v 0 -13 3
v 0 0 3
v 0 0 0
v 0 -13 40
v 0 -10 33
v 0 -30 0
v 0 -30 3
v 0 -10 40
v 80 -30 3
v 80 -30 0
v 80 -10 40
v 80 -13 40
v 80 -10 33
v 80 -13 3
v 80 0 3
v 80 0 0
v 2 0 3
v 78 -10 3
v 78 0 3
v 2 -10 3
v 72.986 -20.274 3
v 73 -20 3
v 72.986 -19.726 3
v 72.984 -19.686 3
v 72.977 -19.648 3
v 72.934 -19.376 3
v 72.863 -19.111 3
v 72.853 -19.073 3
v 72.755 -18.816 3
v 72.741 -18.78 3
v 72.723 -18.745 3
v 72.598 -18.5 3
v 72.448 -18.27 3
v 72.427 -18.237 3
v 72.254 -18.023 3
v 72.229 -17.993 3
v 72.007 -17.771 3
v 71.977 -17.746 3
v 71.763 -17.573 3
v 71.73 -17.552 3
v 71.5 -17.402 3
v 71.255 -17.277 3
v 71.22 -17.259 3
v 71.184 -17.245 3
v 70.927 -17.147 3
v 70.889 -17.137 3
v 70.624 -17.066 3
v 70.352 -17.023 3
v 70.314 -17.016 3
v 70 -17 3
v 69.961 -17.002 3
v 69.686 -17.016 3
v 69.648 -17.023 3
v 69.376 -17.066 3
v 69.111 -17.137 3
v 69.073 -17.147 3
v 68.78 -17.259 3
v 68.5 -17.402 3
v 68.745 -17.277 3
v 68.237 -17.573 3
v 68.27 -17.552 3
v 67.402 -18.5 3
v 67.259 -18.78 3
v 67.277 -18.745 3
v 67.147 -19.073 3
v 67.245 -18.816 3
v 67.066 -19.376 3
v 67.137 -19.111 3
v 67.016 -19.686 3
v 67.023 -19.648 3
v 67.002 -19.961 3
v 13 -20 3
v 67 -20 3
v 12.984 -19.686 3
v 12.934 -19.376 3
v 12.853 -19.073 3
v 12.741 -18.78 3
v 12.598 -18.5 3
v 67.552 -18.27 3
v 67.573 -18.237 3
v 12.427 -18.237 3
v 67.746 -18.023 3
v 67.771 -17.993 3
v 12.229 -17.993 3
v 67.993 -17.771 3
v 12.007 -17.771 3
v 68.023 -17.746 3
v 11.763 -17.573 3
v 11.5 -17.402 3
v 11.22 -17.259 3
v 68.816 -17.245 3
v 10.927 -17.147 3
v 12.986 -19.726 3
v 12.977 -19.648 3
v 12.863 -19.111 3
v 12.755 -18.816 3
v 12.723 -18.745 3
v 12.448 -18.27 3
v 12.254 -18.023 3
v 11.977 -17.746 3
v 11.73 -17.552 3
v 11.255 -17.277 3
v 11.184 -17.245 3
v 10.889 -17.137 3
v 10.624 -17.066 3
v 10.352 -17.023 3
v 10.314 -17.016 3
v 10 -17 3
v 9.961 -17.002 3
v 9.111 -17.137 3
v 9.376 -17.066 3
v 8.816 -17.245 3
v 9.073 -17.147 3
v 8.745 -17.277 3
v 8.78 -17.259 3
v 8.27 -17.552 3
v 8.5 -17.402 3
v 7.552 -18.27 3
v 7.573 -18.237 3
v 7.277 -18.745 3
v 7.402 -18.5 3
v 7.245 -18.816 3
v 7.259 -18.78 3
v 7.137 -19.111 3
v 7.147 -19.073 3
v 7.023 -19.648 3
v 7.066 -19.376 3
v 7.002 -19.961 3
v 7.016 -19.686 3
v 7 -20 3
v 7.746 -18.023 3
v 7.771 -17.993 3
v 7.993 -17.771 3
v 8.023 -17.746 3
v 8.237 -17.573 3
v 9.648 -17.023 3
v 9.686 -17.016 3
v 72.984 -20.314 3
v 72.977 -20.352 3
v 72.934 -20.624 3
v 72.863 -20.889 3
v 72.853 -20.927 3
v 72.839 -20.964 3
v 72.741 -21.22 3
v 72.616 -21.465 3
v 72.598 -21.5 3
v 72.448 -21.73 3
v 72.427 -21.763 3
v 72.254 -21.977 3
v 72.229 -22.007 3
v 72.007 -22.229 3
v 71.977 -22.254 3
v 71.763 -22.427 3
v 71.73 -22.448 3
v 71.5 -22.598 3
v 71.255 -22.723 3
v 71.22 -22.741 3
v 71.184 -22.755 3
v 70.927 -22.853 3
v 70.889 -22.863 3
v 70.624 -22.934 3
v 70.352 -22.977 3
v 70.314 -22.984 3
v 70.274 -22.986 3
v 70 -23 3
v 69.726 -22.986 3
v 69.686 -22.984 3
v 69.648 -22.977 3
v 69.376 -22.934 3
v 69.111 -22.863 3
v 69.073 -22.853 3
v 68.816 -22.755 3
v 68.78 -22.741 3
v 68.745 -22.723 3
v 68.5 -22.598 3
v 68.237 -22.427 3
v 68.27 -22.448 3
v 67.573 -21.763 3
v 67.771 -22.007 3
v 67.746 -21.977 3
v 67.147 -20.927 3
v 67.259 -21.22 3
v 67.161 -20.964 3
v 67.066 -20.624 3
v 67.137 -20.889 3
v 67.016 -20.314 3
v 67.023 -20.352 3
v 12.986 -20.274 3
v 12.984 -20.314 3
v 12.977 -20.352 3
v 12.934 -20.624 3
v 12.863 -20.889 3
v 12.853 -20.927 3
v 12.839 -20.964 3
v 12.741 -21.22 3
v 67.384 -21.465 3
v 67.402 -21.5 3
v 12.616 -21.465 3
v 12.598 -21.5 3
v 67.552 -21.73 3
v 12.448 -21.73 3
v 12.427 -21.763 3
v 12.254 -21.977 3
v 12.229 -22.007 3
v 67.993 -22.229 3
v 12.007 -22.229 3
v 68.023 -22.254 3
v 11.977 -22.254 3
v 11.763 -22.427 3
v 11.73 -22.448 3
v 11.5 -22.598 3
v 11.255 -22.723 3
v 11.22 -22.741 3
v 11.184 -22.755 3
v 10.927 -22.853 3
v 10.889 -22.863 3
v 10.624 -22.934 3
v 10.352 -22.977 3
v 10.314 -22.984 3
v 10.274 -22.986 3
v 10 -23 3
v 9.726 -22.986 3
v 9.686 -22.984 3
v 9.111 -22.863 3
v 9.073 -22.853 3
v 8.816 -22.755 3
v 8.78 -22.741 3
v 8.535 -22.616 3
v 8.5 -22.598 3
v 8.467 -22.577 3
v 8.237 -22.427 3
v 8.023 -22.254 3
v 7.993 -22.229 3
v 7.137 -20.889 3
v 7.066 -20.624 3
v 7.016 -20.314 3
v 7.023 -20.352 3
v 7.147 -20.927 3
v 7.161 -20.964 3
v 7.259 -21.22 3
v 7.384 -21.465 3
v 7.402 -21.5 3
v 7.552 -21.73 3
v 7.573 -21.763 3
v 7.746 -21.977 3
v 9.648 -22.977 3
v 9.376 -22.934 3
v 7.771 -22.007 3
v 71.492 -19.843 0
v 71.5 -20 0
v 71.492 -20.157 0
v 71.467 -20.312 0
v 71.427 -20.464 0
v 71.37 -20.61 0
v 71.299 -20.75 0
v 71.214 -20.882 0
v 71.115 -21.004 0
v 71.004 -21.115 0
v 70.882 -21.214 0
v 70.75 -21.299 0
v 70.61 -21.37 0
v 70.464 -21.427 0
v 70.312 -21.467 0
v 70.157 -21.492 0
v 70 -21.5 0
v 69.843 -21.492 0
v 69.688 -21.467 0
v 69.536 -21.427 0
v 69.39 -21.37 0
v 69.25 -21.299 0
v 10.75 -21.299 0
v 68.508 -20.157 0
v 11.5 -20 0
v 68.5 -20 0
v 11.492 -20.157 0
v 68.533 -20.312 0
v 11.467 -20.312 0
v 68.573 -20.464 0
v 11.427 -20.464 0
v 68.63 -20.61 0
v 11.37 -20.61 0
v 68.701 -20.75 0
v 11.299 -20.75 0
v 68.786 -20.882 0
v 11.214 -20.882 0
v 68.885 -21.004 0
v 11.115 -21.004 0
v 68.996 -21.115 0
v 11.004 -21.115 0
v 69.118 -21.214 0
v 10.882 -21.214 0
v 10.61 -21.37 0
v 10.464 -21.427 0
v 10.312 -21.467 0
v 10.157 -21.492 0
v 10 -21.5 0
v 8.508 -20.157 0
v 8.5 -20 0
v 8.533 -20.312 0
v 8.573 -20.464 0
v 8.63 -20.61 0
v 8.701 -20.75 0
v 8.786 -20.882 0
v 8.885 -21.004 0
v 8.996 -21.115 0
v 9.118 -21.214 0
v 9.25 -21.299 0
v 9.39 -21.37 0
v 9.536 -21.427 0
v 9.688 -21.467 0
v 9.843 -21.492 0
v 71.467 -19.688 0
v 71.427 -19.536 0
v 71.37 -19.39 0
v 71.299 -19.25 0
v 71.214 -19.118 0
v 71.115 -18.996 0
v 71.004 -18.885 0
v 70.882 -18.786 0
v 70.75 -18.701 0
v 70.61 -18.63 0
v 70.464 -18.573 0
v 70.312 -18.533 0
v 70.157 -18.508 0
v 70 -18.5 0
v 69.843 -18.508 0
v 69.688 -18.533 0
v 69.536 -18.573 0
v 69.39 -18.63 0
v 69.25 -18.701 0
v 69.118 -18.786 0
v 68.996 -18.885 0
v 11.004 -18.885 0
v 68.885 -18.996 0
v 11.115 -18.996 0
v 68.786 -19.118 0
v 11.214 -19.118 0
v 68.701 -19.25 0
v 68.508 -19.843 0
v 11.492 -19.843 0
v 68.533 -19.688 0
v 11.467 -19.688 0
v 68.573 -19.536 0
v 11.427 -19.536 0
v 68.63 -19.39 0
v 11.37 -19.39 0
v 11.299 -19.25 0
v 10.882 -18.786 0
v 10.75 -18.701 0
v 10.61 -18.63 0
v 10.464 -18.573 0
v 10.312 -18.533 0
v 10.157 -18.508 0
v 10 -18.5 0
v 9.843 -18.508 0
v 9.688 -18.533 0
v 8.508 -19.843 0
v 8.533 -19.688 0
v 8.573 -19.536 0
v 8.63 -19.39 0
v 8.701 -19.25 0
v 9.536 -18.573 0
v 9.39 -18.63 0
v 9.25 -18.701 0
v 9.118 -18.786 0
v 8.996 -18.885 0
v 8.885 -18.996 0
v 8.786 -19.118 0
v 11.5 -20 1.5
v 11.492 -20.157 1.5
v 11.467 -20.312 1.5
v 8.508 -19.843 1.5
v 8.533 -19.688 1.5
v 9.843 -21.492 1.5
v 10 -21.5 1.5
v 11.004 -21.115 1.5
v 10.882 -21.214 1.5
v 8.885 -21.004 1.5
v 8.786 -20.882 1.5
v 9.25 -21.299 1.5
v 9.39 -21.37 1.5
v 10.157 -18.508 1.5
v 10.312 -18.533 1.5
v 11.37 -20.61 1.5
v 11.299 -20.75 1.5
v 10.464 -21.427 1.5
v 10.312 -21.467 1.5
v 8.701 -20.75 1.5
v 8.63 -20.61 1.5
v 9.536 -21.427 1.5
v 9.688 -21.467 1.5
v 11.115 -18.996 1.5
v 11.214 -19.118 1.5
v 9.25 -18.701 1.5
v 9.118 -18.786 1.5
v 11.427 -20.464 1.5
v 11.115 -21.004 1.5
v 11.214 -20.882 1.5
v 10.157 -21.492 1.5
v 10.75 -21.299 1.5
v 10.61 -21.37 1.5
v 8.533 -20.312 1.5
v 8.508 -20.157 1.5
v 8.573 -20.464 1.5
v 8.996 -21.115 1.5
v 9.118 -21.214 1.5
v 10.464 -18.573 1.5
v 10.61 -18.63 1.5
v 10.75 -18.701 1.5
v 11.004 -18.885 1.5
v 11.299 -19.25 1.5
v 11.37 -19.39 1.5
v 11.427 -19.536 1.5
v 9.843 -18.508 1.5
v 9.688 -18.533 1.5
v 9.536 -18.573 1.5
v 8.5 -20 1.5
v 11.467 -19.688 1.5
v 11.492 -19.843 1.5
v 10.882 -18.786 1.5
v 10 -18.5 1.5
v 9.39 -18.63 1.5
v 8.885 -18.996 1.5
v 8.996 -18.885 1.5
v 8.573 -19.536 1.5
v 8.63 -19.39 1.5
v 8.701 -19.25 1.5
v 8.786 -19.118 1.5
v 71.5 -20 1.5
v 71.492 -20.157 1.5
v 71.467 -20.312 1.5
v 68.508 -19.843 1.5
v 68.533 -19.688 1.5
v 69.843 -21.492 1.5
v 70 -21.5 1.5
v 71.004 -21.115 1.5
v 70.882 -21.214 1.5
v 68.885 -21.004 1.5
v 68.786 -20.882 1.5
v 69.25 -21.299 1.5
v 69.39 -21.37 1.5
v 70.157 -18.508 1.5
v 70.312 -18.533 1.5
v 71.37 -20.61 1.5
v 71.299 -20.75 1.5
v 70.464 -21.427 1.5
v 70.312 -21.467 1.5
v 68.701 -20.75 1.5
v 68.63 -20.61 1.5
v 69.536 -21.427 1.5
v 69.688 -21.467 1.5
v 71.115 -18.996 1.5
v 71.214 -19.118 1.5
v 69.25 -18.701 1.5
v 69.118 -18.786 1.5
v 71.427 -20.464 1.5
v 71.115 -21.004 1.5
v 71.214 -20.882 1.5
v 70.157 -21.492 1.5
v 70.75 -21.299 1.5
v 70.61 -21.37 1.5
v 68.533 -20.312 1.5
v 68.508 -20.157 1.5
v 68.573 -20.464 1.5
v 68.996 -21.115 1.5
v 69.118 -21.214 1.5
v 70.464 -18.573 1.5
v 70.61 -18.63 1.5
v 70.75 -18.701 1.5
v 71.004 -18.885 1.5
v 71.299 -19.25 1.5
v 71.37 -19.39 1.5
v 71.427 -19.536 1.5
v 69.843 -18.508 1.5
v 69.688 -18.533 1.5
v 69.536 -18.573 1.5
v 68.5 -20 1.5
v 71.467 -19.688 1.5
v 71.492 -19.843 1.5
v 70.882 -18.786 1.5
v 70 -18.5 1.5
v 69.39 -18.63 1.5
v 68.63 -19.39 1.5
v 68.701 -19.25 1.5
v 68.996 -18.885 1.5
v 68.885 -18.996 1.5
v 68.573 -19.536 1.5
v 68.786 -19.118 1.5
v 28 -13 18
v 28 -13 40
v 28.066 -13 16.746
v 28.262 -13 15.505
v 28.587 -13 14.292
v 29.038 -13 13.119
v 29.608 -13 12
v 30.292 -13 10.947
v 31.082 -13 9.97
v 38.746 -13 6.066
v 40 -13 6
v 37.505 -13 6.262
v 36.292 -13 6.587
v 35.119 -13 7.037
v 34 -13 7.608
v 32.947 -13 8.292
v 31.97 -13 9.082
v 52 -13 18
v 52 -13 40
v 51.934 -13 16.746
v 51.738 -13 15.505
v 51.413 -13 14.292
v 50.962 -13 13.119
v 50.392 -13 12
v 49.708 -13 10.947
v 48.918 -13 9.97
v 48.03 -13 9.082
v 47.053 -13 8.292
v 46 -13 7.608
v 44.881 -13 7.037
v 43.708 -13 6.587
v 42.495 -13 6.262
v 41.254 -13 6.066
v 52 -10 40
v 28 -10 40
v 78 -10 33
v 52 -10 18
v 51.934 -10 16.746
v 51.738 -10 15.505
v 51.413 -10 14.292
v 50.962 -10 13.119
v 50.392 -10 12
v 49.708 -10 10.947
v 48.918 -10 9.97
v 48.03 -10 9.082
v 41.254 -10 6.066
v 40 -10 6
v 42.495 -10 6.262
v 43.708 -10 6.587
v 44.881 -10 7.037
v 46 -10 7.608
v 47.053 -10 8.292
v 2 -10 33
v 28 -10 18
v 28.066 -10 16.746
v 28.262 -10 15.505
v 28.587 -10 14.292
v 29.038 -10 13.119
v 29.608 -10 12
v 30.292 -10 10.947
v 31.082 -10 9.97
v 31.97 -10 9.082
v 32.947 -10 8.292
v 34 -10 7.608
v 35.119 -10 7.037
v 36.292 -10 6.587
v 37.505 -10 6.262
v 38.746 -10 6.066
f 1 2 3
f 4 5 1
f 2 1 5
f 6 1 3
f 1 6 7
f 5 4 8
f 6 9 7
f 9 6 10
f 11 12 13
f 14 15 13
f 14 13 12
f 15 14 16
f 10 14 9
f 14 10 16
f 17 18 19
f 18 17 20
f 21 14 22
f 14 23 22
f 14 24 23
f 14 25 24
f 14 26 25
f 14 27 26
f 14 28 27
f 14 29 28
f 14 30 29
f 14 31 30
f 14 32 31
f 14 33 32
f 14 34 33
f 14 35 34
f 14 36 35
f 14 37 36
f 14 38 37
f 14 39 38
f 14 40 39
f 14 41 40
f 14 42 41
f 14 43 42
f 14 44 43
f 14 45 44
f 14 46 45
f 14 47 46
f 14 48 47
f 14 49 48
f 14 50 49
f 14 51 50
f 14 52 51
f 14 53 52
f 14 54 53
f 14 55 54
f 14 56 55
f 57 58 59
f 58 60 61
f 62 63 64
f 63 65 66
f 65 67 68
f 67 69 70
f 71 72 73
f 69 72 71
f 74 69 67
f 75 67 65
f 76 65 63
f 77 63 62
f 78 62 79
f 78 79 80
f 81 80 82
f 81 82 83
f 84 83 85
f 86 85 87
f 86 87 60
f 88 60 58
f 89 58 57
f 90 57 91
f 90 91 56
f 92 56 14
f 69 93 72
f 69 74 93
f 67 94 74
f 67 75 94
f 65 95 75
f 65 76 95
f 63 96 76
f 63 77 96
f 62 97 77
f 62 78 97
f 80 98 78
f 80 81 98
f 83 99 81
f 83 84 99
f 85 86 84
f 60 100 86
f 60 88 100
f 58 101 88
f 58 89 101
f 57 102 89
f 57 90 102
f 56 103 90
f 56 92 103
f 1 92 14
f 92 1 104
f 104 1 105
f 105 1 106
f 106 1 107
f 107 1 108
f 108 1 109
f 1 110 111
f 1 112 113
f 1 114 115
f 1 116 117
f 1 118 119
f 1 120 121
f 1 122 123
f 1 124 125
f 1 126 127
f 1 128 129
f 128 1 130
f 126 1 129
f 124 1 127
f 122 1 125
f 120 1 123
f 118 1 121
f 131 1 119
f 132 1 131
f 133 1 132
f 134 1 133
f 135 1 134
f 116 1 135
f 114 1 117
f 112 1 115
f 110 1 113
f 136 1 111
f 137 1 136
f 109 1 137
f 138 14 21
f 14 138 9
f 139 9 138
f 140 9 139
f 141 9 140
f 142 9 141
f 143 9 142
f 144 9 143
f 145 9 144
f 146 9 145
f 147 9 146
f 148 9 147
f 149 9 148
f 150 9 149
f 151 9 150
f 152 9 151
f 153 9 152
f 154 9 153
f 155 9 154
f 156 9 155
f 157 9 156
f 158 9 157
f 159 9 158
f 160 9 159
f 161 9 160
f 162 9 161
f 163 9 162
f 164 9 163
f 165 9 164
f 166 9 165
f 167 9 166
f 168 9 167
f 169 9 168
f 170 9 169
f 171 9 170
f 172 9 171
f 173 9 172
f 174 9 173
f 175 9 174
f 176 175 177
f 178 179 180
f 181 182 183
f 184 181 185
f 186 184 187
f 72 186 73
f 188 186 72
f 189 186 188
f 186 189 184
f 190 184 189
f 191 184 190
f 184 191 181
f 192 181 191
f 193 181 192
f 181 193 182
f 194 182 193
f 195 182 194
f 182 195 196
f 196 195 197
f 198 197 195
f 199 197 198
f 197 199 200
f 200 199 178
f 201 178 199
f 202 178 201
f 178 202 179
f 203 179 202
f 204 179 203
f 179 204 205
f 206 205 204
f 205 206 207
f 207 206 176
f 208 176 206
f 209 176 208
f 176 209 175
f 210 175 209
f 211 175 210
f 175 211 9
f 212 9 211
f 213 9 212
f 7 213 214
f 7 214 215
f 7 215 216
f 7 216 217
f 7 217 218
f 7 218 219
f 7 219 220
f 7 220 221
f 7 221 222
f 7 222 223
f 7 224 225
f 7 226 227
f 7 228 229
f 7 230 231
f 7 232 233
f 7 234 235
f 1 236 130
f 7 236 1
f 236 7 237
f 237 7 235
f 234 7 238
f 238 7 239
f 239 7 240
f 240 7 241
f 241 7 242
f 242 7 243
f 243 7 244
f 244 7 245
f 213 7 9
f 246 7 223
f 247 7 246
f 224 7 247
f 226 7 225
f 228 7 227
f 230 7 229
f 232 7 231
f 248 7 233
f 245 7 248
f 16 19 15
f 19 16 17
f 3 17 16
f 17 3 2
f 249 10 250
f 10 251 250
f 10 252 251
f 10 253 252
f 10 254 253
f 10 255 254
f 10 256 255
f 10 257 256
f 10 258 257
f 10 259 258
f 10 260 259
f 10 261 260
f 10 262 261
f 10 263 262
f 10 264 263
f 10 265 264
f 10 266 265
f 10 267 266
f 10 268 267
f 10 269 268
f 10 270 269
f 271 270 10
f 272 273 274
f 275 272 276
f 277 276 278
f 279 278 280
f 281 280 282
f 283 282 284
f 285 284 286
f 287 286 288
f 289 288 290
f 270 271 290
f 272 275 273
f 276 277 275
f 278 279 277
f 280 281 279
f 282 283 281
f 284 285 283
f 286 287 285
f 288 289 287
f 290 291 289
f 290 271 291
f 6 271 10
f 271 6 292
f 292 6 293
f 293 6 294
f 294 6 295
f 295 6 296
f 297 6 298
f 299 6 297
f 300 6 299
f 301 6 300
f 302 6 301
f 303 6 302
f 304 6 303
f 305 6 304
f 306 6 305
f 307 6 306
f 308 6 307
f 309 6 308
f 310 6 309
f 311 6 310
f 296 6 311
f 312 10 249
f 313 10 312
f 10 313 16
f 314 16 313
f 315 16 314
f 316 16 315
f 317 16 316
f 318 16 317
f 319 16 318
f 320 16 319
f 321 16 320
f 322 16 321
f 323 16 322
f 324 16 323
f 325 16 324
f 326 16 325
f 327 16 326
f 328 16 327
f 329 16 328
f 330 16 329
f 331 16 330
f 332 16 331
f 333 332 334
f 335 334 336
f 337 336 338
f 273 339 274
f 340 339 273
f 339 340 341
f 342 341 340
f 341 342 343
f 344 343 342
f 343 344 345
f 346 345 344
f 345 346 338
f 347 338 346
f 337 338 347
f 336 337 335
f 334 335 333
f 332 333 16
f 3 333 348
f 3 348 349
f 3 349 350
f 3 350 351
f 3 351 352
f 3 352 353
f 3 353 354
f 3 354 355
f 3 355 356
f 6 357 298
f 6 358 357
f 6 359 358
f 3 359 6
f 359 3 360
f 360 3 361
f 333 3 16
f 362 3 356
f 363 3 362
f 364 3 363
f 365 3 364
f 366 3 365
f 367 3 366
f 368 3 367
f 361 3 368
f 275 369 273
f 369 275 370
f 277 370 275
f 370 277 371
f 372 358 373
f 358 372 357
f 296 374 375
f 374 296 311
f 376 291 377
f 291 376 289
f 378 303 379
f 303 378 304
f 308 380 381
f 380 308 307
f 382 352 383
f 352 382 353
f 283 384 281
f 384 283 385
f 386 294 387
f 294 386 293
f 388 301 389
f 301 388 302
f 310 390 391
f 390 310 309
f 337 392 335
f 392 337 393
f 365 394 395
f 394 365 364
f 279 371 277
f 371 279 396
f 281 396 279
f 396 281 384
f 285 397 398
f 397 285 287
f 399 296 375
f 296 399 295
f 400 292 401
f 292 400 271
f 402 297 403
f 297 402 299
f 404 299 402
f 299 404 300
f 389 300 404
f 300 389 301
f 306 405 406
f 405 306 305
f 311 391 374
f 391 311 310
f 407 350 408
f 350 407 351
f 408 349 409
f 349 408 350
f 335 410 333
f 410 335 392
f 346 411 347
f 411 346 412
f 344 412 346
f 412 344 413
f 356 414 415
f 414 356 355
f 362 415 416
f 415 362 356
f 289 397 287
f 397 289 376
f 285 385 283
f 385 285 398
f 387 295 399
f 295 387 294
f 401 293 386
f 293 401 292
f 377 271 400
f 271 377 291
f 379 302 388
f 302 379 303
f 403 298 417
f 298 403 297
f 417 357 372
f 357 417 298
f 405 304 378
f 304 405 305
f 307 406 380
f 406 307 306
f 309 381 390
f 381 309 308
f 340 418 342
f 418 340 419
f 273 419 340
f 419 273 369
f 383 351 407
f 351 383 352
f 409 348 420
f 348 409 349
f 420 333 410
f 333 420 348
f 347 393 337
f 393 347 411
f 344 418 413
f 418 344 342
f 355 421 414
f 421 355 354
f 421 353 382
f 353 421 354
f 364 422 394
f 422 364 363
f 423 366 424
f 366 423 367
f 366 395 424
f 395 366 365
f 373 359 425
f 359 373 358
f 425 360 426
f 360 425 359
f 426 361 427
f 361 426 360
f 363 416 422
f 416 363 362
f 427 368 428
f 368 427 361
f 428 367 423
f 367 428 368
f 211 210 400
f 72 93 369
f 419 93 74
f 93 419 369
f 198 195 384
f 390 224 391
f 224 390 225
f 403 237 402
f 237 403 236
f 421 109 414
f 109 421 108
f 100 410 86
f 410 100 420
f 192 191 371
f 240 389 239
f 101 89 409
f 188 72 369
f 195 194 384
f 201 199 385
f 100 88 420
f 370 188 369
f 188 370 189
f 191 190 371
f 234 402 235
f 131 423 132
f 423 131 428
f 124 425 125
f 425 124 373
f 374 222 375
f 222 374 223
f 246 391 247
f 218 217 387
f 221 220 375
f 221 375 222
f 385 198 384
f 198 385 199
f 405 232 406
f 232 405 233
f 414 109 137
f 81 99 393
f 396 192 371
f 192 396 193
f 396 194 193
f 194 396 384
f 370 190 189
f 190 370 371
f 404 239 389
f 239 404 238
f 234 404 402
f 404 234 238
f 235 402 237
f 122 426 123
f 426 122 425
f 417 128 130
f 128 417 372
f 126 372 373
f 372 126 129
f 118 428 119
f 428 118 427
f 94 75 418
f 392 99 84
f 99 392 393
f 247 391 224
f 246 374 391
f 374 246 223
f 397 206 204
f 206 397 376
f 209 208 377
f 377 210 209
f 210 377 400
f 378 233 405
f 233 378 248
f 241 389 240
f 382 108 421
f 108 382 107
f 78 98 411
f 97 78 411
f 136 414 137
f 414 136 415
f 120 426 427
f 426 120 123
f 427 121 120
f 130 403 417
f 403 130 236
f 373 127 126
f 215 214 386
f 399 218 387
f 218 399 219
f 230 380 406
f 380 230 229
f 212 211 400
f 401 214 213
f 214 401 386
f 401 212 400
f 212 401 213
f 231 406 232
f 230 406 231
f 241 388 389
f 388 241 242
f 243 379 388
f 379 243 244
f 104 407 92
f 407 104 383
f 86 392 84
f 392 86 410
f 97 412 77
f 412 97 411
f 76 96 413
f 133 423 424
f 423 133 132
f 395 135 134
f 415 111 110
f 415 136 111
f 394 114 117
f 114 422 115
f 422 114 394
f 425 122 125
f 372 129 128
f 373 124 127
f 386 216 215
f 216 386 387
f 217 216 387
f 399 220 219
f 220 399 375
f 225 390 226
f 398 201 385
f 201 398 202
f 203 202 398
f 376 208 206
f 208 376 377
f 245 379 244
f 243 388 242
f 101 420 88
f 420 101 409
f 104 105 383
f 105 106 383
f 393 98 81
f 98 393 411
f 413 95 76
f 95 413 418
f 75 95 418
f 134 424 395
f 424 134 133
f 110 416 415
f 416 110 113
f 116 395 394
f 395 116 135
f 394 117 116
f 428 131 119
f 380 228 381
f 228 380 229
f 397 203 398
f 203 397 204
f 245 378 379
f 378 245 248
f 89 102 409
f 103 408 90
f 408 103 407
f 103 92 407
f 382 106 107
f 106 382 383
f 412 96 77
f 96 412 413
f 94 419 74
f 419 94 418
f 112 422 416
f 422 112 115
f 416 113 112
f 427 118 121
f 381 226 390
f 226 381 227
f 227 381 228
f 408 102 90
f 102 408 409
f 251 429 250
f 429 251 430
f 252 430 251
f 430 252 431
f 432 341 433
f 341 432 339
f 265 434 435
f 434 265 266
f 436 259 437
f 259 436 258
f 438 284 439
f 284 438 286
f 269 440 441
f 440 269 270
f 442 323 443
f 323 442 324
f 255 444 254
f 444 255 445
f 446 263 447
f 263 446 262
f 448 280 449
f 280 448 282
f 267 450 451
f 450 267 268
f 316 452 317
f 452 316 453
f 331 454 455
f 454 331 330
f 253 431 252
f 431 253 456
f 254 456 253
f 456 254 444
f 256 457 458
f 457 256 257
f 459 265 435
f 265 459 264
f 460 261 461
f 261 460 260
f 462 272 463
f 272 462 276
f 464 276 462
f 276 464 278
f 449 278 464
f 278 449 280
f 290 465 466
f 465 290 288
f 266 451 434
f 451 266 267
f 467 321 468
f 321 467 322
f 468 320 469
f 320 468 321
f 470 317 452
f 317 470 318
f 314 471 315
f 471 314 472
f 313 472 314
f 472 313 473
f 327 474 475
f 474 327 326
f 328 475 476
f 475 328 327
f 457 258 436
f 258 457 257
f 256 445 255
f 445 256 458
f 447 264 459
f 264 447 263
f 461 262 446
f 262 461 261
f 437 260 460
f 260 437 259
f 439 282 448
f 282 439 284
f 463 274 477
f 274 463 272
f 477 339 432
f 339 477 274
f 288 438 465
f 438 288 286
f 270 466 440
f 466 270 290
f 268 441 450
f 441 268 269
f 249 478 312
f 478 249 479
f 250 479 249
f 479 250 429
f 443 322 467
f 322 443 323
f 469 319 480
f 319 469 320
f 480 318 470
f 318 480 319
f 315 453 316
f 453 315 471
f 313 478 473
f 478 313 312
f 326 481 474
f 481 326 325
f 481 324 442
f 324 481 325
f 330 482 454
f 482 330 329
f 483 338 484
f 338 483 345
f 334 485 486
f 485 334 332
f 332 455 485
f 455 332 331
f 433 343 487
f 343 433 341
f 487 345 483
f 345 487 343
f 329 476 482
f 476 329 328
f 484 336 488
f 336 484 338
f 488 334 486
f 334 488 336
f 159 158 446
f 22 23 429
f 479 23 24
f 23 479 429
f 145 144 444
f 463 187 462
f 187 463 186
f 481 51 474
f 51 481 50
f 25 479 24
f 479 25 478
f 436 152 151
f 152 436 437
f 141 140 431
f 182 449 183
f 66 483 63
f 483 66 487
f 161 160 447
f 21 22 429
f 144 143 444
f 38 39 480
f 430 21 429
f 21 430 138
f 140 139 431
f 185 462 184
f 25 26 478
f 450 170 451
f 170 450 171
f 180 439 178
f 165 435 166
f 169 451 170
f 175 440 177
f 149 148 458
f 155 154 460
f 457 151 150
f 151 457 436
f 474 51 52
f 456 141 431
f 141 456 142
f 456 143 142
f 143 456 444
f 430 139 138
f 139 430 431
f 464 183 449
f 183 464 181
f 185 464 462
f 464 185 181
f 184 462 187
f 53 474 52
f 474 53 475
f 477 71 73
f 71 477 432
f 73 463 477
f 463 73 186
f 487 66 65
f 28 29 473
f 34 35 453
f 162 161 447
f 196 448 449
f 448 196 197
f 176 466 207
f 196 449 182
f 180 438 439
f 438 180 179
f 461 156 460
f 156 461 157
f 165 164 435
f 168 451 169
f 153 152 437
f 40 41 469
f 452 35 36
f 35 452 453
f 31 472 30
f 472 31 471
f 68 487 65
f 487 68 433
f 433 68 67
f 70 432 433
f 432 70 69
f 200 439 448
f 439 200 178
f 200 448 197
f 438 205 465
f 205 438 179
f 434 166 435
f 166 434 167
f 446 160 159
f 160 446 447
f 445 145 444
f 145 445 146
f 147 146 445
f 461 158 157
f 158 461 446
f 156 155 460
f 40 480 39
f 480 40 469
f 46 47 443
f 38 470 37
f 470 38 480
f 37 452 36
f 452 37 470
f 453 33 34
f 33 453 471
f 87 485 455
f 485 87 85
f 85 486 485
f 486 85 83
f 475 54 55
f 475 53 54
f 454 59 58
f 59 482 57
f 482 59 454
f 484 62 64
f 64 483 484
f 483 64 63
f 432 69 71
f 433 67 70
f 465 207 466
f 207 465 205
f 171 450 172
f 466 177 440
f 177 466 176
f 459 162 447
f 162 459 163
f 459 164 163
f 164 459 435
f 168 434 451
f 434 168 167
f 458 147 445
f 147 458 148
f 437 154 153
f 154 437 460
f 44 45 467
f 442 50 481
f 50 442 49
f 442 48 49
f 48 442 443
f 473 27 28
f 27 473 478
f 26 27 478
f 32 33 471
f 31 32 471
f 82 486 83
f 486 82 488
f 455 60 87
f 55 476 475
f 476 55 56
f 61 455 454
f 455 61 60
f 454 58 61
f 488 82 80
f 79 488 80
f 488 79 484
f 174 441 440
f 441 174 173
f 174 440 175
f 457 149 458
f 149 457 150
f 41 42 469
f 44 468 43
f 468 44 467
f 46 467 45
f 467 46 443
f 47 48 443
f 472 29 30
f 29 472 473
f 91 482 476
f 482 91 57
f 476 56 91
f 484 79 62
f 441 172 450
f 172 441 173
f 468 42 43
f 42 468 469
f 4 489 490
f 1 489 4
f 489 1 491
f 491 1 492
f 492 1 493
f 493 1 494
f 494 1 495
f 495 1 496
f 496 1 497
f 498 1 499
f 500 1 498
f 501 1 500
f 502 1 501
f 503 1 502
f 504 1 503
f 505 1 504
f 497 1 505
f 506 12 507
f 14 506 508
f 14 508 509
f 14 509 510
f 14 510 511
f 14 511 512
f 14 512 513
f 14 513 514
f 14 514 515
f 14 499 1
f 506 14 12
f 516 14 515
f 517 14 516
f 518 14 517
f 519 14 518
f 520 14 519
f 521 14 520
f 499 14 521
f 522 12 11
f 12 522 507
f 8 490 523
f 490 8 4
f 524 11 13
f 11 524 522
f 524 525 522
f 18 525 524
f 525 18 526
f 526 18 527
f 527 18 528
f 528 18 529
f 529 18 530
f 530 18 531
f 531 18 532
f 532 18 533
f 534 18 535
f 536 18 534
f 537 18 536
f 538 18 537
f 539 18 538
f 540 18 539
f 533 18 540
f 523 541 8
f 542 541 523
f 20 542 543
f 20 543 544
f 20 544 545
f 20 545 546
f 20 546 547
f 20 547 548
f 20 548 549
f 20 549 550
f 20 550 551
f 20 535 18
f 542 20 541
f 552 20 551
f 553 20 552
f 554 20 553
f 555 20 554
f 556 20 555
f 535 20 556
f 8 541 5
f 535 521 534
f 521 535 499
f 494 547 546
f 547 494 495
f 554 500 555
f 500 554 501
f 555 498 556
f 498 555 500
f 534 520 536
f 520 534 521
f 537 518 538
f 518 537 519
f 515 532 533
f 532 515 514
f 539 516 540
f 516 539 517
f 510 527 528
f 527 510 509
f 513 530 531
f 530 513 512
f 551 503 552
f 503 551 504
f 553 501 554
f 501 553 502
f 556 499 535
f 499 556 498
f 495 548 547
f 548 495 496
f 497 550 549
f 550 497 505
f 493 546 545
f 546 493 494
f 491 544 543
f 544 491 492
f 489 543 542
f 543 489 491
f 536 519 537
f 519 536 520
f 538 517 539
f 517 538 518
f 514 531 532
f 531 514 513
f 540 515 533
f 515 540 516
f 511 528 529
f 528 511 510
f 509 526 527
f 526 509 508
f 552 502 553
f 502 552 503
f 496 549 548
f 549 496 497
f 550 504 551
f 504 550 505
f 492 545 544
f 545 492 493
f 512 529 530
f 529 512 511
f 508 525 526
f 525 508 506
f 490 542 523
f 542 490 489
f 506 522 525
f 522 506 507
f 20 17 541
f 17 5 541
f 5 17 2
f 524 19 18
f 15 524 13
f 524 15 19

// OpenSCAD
$fn = 60;

rotate([90, 0, 0]) {
 difference () {
   cube([80, 3, 30]);
   translate([10, 4, 20]) rotate([90, 0, 0]) cylinder(5, r=1.5);
   translate([10, 1.5, 20]) rotate([-90, 0, 0]) cylinder(2, r1=1.5, r2=3.5);
   translate([70, 4, 20]) rotate([90, 0, 0]) cylinder(5, r=1.5);
   translate([70, 1.5, 20]) rotate([-90, 0, 0]) cylinder(2, r1=1.5, r2=3.5);
 

 
   }
 
difference () {
  translate([0, 0, 10]) cube([80, 40, 3]);
  
  translate([40, 18, 9]) cylinder(5, r=12);
  translate([28, 18, 9]) cube([24, 26, 5]);


}




translate([2, 3, 0]) rotate([0, -90, 0]) {
linear_extrude(height=2) {
polygon([[0, 0], [10, 0], [10, 30]]);
}
}

translate([80, 3, 0]) rotate([0, -90, 0]) {
linear_extrude(height=2) {
polygon([[0, 0], [10, 0], [10, 30]]);
}
}

}
